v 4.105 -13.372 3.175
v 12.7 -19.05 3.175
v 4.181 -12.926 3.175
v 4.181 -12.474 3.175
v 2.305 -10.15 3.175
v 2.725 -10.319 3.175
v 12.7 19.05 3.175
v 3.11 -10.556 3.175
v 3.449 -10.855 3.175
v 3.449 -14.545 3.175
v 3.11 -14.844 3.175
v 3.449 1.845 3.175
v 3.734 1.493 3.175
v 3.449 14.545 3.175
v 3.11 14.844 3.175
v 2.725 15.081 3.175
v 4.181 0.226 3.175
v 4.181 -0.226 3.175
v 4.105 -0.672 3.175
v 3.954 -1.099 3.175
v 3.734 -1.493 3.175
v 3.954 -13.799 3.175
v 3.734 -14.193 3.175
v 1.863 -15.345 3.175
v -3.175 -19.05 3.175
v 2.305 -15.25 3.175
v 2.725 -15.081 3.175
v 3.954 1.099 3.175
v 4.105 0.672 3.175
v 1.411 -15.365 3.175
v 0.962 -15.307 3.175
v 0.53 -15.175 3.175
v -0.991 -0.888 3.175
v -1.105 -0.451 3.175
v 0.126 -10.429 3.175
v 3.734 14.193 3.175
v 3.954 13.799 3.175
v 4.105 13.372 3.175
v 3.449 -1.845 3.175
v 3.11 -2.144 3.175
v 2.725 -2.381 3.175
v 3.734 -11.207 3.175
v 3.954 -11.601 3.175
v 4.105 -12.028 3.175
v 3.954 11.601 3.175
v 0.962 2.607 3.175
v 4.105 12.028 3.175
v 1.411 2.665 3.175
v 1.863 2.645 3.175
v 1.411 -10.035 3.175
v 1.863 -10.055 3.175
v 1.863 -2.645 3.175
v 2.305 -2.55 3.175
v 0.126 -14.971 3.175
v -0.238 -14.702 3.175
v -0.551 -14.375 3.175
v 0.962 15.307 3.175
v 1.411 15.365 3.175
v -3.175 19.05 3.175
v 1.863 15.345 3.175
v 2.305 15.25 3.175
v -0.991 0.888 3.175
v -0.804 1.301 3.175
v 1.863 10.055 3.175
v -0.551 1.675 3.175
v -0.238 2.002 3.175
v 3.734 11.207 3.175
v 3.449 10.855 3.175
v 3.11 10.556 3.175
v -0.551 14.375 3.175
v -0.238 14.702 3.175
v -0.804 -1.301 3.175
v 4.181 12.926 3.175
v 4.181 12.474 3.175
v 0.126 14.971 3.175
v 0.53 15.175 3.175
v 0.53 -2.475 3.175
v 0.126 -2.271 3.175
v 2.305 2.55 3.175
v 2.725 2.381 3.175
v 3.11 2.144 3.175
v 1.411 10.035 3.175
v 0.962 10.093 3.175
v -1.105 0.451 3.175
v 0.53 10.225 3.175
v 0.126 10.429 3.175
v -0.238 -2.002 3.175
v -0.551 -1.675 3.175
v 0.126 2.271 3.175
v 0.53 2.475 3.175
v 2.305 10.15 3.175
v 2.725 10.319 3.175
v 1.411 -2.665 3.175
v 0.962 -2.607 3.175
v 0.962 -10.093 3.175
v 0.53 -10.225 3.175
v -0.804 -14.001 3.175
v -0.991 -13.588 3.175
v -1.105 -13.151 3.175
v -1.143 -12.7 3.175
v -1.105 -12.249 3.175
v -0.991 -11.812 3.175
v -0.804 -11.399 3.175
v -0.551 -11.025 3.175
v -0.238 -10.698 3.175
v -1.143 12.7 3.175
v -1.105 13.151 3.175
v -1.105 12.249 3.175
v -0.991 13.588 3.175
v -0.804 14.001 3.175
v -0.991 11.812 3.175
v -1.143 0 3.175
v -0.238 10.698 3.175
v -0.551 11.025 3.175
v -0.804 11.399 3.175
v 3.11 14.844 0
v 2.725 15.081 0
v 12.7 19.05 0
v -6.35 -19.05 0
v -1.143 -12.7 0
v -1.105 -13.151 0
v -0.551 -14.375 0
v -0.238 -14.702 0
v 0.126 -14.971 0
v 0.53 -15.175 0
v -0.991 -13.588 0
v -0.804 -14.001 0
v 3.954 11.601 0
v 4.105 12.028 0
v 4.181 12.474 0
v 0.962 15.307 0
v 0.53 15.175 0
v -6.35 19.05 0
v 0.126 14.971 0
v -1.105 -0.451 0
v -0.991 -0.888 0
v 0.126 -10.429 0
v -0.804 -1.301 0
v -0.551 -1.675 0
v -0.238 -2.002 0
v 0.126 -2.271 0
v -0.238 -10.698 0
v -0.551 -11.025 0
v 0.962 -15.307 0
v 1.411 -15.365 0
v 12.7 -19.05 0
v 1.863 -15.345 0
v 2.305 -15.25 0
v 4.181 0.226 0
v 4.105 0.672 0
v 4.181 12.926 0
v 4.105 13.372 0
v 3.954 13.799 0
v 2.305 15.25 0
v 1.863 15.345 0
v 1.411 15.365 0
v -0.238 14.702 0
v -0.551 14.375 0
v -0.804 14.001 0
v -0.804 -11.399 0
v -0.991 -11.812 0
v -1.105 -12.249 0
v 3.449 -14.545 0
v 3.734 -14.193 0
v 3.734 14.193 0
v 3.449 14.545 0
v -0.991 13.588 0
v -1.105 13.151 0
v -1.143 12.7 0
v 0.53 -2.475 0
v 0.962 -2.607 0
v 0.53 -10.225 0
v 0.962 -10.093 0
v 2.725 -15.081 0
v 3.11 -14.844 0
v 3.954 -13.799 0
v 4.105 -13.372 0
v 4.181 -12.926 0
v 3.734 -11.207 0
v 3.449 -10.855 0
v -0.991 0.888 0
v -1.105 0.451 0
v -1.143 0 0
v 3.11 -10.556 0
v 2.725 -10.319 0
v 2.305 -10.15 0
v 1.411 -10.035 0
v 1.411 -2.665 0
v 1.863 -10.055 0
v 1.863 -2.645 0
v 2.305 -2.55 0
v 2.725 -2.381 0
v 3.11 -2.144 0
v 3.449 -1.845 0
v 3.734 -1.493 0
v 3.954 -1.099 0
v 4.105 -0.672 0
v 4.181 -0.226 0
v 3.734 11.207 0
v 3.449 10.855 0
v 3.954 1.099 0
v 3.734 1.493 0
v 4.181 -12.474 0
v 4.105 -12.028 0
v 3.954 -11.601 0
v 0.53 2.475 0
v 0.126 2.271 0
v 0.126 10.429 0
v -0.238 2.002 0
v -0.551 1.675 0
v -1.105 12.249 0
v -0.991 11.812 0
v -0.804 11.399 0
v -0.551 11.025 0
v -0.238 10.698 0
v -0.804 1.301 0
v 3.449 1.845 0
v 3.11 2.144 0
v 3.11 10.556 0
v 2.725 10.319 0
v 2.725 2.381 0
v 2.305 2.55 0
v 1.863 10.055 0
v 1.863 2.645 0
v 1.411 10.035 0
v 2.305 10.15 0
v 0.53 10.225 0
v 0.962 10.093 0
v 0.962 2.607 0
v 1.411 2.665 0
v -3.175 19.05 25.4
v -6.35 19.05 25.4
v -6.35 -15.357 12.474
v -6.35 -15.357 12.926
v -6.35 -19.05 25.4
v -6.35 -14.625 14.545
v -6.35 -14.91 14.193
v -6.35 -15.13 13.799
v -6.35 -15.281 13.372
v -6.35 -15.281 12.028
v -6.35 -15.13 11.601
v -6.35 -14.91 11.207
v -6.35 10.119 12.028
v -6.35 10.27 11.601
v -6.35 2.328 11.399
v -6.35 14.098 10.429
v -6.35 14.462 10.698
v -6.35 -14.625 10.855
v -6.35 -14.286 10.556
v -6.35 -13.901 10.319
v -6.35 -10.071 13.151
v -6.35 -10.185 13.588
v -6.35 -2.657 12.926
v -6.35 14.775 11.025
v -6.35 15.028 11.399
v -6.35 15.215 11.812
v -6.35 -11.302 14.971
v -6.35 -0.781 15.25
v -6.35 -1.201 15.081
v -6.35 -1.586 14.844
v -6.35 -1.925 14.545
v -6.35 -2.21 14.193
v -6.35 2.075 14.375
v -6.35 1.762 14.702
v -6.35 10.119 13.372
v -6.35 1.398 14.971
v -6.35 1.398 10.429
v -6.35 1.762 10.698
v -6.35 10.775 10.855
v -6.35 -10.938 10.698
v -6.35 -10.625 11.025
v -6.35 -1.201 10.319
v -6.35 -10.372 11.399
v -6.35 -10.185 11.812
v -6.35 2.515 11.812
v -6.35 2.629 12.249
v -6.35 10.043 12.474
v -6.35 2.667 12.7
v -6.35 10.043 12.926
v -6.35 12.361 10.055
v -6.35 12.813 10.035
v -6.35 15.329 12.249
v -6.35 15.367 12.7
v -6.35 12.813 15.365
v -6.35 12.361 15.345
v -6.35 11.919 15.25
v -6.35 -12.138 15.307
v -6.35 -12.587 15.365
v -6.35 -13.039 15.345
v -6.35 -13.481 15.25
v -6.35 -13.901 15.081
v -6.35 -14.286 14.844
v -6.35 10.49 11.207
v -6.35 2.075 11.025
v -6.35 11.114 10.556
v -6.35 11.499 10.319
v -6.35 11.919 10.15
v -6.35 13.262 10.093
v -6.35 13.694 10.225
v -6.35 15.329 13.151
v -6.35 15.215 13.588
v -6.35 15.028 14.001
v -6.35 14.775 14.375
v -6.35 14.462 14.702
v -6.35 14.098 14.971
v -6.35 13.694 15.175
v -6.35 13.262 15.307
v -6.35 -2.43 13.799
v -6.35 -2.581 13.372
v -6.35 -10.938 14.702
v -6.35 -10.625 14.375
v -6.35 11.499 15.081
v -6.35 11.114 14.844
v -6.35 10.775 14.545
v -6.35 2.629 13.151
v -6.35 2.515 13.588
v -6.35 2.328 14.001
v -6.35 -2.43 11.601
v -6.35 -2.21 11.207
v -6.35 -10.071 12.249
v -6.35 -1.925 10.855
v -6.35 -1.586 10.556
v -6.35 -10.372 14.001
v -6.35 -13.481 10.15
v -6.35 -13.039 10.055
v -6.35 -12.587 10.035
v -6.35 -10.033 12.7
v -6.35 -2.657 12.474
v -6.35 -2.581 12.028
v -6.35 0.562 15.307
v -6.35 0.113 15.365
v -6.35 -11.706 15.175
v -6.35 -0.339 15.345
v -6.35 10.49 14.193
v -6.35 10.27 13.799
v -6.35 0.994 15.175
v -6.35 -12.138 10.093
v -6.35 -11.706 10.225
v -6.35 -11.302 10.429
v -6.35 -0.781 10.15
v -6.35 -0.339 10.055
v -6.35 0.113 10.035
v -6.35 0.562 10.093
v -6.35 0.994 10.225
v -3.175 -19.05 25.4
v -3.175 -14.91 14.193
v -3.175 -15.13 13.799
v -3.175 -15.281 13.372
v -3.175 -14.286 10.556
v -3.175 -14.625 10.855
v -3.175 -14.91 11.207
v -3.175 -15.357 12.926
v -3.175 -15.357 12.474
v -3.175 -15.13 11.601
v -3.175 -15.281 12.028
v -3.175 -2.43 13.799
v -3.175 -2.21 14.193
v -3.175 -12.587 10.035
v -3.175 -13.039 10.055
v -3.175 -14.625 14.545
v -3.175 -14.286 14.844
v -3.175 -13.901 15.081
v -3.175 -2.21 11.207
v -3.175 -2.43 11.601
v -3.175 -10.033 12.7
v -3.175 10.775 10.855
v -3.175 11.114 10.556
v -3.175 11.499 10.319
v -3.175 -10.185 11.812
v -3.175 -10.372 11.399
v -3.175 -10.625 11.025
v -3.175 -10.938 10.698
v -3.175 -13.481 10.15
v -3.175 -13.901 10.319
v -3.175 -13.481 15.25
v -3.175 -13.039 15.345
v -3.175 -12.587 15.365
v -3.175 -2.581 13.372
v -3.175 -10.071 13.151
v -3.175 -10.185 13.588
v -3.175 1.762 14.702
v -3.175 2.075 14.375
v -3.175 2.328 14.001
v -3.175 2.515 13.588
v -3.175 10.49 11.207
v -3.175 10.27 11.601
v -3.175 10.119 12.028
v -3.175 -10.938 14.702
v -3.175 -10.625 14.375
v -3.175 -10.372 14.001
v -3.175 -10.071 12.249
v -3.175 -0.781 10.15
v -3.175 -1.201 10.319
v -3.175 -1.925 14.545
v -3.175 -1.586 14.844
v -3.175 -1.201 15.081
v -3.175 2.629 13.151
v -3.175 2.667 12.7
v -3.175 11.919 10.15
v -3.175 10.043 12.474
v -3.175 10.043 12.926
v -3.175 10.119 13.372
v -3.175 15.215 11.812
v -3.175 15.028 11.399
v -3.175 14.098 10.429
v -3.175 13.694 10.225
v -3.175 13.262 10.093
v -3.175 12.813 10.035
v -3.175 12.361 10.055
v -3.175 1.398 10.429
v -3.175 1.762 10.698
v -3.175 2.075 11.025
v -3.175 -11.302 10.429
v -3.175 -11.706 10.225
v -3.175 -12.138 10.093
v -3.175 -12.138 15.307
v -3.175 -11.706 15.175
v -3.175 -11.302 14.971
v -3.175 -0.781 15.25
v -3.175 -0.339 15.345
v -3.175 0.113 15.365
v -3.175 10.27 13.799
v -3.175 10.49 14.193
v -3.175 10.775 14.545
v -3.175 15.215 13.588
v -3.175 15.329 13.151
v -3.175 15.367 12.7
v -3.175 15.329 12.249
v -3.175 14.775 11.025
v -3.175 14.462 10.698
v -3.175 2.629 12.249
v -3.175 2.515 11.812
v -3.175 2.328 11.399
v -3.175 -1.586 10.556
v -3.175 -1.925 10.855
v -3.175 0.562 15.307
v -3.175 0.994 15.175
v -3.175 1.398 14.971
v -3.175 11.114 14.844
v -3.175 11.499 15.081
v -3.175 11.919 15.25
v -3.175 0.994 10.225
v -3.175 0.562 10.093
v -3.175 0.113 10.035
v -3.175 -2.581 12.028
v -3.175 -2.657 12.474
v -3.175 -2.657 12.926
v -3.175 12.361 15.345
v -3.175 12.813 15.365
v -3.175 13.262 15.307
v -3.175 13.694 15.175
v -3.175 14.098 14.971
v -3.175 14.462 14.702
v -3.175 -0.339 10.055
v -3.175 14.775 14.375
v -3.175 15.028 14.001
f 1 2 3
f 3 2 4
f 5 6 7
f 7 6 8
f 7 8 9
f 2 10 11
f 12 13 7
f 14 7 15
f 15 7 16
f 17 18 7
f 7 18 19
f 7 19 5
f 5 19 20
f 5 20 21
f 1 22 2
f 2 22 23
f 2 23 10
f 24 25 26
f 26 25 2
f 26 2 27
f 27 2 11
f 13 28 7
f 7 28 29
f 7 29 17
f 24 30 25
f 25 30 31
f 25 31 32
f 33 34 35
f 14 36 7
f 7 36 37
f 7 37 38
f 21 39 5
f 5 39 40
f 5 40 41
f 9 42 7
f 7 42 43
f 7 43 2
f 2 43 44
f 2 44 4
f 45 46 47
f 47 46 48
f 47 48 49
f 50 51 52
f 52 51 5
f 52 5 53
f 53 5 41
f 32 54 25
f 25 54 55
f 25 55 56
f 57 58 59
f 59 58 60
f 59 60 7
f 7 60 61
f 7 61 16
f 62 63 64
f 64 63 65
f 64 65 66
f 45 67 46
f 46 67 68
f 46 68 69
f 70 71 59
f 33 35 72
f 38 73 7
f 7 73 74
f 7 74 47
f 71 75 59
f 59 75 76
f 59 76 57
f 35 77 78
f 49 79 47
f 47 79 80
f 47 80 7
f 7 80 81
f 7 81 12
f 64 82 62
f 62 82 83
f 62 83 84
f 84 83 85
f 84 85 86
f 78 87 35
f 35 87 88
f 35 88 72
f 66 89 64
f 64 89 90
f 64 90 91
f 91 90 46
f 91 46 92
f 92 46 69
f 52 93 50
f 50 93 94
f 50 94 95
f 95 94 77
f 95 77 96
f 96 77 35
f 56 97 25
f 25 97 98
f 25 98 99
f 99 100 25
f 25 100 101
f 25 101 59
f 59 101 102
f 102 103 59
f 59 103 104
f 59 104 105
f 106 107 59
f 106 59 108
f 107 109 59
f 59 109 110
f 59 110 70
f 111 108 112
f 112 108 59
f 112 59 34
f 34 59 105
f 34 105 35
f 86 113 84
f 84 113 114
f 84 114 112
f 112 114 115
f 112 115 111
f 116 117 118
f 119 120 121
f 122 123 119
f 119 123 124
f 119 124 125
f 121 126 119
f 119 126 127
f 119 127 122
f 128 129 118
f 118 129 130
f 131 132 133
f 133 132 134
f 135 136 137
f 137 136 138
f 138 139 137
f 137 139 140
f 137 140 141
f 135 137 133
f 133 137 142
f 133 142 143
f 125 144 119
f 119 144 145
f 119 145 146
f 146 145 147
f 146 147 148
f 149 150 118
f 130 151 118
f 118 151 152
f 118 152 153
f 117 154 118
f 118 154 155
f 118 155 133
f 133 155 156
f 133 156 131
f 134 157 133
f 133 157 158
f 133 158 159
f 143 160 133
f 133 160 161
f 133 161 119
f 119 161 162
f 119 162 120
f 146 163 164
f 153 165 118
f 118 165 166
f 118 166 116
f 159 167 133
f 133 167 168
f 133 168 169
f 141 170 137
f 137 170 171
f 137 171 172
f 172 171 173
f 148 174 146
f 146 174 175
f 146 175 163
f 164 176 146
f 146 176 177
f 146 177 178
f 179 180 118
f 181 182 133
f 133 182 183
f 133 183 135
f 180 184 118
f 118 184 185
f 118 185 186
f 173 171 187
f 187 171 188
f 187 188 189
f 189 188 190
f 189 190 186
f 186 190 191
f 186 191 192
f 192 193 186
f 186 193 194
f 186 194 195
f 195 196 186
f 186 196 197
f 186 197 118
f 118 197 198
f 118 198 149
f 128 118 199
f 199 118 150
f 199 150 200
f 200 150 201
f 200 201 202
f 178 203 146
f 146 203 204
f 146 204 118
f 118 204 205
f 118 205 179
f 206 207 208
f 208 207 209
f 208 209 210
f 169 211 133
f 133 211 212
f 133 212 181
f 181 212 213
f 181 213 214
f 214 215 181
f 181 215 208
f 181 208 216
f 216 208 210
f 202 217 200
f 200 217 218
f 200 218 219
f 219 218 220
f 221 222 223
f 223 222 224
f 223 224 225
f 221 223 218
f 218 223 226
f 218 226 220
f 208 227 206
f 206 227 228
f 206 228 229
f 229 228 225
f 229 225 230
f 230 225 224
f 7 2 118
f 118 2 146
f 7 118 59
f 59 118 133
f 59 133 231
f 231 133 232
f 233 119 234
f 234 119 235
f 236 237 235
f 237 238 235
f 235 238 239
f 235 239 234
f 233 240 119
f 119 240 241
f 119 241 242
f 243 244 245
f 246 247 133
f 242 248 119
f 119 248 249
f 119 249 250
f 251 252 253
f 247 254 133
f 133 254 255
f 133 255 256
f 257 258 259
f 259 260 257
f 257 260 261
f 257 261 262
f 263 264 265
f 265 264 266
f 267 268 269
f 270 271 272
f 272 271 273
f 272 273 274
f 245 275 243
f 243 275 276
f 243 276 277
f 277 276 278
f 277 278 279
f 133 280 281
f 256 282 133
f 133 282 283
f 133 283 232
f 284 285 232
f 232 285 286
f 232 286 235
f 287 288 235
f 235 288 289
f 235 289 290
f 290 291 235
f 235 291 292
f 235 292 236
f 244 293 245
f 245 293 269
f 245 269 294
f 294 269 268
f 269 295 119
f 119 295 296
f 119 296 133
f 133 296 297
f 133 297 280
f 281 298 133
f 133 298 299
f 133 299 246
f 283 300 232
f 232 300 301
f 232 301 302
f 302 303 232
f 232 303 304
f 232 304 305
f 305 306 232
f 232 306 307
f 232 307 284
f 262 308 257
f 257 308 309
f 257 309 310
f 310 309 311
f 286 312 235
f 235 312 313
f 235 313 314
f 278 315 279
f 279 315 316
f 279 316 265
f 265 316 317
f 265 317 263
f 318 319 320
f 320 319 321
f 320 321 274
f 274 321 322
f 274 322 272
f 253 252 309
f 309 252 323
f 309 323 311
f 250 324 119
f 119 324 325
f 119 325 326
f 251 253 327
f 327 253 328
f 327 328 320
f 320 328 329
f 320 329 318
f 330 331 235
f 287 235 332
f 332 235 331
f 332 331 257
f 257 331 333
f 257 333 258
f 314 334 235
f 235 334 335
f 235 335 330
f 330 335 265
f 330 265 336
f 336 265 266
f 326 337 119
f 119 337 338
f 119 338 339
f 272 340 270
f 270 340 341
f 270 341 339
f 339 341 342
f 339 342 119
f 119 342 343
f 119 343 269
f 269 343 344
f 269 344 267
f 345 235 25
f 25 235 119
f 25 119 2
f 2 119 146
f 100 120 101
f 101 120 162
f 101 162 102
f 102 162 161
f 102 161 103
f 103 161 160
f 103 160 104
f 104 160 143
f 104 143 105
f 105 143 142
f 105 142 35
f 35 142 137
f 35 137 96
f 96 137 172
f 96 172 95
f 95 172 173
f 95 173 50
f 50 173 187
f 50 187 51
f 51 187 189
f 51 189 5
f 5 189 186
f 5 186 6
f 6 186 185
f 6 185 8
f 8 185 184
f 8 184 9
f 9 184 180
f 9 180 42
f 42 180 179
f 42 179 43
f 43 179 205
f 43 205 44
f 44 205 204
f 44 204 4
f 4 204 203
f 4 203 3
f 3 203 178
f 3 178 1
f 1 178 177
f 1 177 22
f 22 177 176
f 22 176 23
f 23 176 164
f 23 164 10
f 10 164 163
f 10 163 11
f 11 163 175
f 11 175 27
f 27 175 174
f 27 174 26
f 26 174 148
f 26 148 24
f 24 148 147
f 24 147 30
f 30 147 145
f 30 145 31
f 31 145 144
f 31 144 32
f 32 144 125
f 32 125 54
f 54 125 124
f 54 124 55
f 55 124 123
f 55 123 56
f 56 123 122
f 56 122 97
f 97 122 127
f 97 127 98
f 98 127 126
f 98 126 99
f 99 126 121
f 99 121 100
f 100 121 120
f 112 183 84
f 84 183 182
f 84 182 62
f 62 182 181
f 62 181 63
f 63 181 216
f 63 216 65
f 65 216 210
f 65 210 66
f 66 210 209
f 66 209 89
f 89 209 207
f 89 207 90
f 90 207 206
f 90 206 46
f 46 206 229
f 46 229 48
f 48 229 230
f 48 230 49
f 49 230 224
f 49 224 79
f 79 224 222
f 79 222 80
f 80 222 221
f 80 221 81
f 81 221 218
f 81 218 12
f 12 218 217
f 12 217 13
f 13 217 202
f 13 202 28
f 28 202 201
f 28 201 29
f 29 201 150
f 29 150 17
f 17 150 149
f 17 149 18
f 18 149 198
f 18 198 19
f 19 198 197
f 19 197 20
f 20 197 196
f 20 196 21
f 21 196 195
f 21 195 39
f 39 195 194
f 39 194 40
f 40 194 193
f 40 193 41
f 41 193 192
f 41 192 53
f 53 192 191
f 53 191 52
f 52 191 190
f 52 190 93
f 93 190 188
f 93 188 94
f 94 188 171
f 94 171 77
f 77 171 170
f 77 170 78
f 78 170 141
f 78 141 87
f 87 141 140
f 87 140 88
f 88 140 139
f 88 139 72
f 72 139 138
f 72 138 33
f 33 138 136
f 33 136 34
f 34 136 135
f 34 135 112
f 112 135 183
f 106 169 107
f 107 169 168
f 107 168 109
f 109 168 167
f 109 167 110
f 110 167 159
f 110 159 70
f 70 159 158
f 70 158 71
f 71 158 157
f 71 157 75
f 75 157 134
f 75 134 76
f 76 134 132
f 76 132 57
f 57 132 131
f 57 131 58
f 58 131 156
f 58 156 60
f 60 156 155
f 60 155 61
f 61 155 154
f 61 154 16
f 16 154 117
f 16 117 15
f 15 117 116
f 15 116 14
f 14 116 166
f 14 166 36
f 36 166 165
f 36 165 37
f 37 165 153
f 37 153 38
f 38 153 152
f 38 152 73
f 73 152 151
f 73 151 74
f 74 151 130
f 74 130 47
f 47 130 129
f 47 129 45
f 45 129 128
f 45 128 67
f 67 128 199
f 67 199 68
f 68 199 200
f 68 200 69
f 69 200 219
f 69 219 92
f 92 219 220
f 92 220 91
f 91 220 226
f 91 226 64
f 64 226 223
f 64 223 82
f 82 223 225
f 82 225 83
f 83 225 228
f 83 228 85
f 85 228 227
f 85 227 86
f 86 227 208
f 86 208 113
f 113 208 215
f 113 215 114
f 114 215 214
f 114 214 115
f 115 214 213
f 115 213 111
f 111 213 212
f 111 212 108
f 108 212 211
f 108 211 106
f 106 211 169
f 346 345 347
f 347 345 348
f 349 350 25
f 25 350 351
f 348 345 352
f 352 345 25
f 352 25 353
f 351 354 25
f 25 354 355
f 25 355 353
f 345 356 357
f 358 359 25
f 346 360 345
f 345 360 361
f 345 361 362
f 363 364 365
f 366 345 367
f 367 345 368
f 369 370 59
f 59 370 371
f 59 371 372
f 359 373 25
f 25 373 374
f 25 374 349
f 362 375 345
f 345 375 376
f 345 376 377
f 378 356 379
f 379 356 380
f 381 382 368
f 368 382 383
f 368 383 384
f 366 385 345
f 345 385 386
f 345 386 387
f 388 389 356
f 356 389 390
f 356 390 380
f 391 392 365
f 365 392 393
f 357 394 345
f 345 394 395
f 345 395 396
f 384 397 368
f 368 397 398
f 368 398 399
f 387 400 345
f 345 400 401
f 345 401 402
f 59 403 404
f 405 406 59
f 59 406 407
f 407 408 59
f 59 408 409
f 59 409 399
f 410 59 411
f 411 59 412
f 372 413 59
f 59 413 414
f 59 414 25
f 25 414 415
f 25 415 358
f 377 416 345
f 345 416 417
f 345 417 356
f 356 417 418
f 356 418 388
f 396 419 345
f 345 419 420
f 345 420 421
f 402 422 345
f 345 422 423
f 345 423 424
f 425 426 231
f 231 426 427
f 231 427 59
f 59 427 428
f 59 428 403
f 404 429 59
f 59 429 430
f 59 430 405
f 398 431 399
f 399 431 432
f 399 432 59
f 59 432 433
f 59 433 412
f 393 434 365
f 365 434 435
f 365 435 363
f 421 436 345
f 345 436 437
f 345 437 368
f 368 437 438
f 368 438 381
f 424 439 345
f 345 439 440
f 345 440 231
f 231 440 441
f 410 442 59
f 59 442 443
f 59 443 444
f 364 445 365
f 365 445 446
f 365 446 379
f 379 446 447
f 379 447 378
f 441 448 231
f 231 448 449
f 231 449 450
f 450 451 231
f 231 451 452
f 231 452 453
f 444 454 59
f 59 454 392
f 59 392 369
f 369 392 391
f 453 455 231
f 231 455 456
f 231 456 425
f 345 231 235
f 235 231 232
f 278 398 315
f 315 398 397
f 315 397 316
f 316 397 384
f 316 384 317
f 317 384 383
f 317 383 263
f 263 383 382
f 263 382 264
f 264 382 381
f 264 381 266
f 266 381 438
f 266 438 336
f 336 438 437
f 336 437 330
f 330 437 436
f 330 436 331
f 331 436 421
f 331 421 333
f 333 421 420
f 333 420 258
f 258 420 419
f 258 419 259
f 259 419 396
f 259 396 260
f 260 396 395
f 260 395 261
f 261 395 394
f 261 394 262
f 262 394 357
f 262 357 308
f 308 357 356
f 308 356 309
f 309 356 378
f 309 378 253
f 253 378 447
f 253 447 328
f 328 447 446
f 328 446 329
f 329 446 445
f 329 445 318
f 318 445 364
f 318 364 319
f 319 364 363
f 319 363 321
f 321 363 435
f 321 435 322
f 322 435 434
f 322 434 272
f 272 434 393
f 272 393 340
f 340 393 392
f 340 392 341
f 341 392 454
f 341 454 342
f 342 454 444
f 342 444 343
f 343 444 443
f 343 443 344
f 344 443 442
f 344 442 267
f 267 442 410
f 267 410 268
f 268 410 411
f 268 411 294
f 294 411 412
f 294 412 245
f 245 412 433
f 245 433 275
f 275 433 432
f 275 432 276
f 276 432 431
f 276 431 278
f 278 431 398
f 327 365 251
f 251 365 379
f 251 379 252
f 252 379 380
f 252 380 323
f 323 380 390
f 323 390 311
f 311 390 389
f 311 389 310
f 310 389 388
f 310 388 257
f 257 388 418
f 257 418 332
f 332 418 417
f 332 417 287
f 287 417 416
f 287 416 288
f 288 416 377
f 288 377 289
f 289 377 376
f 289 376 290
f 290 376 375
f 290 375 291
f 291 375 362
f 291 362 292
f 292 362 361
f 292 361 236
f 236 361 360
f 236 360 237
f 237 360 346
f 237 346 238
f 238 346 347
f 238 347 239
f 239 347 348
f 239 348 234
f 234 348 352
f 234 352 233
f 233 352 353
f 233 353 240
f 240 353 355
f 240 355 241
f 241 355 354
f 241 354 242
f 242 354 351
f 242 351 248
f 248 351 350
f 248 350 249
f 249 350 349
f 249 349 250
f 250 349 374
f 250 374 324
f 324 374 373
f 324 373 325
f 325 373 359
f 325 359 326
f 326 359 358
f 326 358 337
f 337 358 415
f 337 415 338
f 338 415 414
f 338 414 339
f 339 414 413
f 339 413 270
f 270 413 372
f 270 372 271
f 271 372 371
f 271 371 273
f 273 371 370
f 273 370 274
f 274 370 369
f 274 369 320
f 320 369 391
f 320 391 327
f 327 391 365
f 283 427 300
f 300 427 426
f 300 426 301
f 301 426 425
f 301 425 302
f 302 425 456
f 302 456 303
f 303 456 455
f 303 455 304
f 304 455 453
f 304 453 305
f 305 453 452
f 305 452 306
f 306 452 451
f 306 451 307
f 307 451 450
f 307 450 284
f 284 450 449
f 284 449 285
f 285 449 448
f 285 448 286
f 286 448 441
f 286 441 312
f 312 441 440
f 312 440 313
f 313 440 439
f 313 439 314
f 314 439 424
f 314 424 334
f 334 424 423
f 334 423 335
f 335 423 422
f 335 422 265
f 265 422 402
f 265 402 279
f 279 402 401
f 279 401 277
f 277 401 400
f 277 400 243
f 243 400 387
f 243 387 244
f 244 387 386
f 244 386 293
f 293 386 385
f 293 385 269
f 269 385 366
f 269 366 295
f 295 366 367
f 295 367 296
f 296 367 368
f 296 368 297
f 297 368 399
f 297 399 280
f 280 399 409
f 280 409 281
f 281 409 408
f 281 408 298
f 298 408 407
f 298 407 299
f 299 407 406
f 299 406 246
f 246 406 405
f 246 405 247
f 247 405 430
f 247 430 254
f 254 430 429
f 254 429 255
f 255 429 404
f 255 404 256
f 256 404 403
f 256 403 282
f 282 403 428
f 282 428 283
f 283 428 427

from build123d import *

# Parameters (mm, degrees)
SKETCH1_W           = 19.05
SKETCH1_H           = 38.1
SKETCH1_R           = 2.667
BOSS_EXTRUDE1_DEPTH = 3.175
SKETCH2_W           = 3.175
SKETCH2_H           = 38.1
BOSS_EXTRUDE2_DEPTH = 22.225
SKETCH4_R           = 2.667
CUT_EXTRUDE1_DEPTH  = 36.497579143


with BuildPart() as part:
    # Sketch1 → Boss-Extrude1 (new body)
    with BuildSketch(Plane.XY):
        with Locations((3.175, 0)):
            Rectangle(SKETCH1_W, SKETCH1_H)
        with Locations(Location((1.524, -12.7, 0), (0, 0, 180))):
            Circle(SKETCH1_R, mode=Mode.SUBTRACT)
        with Locations(Location((1.524, 0, 0), (0, 0, 180))):
            Circle(SKETCH1_R, mode=Mode.SUBTRACT)
        with Locations(Location((1.524, 12.7, 0), (0, 0, 180))):
            Circle(SKETCH1_R, mode=Mode.SUBTRACT)
    extrude(amount=BOSS_EXTRUDE1_DEPTH)

    # Sketch2 → Boss-Extrude2 (add)
    with BuildSketch(Plane.XY.offset(3.175)):
        with Locations((-4.7625, 0)):
            Rectangle(SKETCH2_W, SKETCH2_H)
    extrude(amount=BOSS_EXTRUDE2_DEPTH)

    # Sketch4 → Cut-Extrude1 (cut, through all)
    with BuildSketch(Plane(origin=(-3.175, 0, 0), x_dir=(0, 0, -1), z_dir=(1, 0, 0))):
        with Locations(Location((-12.7, 0, 0), (0, 0, 90))):
            Circle(SKETCH4_R)
        with Locations(Location((-12.7, 12.7, 0), (0, 0, 90))):
            Circle(SKETCH4_R)
        with Locations(Location((-12.7, -12.7, 0), (0, 0, 90))):
            Circle(SKETCH4_R)
    extrude(amount=-CUT_EXTRUDE1_DEPTH, mode=Mode.SUBTRACT)


solid = part.part
